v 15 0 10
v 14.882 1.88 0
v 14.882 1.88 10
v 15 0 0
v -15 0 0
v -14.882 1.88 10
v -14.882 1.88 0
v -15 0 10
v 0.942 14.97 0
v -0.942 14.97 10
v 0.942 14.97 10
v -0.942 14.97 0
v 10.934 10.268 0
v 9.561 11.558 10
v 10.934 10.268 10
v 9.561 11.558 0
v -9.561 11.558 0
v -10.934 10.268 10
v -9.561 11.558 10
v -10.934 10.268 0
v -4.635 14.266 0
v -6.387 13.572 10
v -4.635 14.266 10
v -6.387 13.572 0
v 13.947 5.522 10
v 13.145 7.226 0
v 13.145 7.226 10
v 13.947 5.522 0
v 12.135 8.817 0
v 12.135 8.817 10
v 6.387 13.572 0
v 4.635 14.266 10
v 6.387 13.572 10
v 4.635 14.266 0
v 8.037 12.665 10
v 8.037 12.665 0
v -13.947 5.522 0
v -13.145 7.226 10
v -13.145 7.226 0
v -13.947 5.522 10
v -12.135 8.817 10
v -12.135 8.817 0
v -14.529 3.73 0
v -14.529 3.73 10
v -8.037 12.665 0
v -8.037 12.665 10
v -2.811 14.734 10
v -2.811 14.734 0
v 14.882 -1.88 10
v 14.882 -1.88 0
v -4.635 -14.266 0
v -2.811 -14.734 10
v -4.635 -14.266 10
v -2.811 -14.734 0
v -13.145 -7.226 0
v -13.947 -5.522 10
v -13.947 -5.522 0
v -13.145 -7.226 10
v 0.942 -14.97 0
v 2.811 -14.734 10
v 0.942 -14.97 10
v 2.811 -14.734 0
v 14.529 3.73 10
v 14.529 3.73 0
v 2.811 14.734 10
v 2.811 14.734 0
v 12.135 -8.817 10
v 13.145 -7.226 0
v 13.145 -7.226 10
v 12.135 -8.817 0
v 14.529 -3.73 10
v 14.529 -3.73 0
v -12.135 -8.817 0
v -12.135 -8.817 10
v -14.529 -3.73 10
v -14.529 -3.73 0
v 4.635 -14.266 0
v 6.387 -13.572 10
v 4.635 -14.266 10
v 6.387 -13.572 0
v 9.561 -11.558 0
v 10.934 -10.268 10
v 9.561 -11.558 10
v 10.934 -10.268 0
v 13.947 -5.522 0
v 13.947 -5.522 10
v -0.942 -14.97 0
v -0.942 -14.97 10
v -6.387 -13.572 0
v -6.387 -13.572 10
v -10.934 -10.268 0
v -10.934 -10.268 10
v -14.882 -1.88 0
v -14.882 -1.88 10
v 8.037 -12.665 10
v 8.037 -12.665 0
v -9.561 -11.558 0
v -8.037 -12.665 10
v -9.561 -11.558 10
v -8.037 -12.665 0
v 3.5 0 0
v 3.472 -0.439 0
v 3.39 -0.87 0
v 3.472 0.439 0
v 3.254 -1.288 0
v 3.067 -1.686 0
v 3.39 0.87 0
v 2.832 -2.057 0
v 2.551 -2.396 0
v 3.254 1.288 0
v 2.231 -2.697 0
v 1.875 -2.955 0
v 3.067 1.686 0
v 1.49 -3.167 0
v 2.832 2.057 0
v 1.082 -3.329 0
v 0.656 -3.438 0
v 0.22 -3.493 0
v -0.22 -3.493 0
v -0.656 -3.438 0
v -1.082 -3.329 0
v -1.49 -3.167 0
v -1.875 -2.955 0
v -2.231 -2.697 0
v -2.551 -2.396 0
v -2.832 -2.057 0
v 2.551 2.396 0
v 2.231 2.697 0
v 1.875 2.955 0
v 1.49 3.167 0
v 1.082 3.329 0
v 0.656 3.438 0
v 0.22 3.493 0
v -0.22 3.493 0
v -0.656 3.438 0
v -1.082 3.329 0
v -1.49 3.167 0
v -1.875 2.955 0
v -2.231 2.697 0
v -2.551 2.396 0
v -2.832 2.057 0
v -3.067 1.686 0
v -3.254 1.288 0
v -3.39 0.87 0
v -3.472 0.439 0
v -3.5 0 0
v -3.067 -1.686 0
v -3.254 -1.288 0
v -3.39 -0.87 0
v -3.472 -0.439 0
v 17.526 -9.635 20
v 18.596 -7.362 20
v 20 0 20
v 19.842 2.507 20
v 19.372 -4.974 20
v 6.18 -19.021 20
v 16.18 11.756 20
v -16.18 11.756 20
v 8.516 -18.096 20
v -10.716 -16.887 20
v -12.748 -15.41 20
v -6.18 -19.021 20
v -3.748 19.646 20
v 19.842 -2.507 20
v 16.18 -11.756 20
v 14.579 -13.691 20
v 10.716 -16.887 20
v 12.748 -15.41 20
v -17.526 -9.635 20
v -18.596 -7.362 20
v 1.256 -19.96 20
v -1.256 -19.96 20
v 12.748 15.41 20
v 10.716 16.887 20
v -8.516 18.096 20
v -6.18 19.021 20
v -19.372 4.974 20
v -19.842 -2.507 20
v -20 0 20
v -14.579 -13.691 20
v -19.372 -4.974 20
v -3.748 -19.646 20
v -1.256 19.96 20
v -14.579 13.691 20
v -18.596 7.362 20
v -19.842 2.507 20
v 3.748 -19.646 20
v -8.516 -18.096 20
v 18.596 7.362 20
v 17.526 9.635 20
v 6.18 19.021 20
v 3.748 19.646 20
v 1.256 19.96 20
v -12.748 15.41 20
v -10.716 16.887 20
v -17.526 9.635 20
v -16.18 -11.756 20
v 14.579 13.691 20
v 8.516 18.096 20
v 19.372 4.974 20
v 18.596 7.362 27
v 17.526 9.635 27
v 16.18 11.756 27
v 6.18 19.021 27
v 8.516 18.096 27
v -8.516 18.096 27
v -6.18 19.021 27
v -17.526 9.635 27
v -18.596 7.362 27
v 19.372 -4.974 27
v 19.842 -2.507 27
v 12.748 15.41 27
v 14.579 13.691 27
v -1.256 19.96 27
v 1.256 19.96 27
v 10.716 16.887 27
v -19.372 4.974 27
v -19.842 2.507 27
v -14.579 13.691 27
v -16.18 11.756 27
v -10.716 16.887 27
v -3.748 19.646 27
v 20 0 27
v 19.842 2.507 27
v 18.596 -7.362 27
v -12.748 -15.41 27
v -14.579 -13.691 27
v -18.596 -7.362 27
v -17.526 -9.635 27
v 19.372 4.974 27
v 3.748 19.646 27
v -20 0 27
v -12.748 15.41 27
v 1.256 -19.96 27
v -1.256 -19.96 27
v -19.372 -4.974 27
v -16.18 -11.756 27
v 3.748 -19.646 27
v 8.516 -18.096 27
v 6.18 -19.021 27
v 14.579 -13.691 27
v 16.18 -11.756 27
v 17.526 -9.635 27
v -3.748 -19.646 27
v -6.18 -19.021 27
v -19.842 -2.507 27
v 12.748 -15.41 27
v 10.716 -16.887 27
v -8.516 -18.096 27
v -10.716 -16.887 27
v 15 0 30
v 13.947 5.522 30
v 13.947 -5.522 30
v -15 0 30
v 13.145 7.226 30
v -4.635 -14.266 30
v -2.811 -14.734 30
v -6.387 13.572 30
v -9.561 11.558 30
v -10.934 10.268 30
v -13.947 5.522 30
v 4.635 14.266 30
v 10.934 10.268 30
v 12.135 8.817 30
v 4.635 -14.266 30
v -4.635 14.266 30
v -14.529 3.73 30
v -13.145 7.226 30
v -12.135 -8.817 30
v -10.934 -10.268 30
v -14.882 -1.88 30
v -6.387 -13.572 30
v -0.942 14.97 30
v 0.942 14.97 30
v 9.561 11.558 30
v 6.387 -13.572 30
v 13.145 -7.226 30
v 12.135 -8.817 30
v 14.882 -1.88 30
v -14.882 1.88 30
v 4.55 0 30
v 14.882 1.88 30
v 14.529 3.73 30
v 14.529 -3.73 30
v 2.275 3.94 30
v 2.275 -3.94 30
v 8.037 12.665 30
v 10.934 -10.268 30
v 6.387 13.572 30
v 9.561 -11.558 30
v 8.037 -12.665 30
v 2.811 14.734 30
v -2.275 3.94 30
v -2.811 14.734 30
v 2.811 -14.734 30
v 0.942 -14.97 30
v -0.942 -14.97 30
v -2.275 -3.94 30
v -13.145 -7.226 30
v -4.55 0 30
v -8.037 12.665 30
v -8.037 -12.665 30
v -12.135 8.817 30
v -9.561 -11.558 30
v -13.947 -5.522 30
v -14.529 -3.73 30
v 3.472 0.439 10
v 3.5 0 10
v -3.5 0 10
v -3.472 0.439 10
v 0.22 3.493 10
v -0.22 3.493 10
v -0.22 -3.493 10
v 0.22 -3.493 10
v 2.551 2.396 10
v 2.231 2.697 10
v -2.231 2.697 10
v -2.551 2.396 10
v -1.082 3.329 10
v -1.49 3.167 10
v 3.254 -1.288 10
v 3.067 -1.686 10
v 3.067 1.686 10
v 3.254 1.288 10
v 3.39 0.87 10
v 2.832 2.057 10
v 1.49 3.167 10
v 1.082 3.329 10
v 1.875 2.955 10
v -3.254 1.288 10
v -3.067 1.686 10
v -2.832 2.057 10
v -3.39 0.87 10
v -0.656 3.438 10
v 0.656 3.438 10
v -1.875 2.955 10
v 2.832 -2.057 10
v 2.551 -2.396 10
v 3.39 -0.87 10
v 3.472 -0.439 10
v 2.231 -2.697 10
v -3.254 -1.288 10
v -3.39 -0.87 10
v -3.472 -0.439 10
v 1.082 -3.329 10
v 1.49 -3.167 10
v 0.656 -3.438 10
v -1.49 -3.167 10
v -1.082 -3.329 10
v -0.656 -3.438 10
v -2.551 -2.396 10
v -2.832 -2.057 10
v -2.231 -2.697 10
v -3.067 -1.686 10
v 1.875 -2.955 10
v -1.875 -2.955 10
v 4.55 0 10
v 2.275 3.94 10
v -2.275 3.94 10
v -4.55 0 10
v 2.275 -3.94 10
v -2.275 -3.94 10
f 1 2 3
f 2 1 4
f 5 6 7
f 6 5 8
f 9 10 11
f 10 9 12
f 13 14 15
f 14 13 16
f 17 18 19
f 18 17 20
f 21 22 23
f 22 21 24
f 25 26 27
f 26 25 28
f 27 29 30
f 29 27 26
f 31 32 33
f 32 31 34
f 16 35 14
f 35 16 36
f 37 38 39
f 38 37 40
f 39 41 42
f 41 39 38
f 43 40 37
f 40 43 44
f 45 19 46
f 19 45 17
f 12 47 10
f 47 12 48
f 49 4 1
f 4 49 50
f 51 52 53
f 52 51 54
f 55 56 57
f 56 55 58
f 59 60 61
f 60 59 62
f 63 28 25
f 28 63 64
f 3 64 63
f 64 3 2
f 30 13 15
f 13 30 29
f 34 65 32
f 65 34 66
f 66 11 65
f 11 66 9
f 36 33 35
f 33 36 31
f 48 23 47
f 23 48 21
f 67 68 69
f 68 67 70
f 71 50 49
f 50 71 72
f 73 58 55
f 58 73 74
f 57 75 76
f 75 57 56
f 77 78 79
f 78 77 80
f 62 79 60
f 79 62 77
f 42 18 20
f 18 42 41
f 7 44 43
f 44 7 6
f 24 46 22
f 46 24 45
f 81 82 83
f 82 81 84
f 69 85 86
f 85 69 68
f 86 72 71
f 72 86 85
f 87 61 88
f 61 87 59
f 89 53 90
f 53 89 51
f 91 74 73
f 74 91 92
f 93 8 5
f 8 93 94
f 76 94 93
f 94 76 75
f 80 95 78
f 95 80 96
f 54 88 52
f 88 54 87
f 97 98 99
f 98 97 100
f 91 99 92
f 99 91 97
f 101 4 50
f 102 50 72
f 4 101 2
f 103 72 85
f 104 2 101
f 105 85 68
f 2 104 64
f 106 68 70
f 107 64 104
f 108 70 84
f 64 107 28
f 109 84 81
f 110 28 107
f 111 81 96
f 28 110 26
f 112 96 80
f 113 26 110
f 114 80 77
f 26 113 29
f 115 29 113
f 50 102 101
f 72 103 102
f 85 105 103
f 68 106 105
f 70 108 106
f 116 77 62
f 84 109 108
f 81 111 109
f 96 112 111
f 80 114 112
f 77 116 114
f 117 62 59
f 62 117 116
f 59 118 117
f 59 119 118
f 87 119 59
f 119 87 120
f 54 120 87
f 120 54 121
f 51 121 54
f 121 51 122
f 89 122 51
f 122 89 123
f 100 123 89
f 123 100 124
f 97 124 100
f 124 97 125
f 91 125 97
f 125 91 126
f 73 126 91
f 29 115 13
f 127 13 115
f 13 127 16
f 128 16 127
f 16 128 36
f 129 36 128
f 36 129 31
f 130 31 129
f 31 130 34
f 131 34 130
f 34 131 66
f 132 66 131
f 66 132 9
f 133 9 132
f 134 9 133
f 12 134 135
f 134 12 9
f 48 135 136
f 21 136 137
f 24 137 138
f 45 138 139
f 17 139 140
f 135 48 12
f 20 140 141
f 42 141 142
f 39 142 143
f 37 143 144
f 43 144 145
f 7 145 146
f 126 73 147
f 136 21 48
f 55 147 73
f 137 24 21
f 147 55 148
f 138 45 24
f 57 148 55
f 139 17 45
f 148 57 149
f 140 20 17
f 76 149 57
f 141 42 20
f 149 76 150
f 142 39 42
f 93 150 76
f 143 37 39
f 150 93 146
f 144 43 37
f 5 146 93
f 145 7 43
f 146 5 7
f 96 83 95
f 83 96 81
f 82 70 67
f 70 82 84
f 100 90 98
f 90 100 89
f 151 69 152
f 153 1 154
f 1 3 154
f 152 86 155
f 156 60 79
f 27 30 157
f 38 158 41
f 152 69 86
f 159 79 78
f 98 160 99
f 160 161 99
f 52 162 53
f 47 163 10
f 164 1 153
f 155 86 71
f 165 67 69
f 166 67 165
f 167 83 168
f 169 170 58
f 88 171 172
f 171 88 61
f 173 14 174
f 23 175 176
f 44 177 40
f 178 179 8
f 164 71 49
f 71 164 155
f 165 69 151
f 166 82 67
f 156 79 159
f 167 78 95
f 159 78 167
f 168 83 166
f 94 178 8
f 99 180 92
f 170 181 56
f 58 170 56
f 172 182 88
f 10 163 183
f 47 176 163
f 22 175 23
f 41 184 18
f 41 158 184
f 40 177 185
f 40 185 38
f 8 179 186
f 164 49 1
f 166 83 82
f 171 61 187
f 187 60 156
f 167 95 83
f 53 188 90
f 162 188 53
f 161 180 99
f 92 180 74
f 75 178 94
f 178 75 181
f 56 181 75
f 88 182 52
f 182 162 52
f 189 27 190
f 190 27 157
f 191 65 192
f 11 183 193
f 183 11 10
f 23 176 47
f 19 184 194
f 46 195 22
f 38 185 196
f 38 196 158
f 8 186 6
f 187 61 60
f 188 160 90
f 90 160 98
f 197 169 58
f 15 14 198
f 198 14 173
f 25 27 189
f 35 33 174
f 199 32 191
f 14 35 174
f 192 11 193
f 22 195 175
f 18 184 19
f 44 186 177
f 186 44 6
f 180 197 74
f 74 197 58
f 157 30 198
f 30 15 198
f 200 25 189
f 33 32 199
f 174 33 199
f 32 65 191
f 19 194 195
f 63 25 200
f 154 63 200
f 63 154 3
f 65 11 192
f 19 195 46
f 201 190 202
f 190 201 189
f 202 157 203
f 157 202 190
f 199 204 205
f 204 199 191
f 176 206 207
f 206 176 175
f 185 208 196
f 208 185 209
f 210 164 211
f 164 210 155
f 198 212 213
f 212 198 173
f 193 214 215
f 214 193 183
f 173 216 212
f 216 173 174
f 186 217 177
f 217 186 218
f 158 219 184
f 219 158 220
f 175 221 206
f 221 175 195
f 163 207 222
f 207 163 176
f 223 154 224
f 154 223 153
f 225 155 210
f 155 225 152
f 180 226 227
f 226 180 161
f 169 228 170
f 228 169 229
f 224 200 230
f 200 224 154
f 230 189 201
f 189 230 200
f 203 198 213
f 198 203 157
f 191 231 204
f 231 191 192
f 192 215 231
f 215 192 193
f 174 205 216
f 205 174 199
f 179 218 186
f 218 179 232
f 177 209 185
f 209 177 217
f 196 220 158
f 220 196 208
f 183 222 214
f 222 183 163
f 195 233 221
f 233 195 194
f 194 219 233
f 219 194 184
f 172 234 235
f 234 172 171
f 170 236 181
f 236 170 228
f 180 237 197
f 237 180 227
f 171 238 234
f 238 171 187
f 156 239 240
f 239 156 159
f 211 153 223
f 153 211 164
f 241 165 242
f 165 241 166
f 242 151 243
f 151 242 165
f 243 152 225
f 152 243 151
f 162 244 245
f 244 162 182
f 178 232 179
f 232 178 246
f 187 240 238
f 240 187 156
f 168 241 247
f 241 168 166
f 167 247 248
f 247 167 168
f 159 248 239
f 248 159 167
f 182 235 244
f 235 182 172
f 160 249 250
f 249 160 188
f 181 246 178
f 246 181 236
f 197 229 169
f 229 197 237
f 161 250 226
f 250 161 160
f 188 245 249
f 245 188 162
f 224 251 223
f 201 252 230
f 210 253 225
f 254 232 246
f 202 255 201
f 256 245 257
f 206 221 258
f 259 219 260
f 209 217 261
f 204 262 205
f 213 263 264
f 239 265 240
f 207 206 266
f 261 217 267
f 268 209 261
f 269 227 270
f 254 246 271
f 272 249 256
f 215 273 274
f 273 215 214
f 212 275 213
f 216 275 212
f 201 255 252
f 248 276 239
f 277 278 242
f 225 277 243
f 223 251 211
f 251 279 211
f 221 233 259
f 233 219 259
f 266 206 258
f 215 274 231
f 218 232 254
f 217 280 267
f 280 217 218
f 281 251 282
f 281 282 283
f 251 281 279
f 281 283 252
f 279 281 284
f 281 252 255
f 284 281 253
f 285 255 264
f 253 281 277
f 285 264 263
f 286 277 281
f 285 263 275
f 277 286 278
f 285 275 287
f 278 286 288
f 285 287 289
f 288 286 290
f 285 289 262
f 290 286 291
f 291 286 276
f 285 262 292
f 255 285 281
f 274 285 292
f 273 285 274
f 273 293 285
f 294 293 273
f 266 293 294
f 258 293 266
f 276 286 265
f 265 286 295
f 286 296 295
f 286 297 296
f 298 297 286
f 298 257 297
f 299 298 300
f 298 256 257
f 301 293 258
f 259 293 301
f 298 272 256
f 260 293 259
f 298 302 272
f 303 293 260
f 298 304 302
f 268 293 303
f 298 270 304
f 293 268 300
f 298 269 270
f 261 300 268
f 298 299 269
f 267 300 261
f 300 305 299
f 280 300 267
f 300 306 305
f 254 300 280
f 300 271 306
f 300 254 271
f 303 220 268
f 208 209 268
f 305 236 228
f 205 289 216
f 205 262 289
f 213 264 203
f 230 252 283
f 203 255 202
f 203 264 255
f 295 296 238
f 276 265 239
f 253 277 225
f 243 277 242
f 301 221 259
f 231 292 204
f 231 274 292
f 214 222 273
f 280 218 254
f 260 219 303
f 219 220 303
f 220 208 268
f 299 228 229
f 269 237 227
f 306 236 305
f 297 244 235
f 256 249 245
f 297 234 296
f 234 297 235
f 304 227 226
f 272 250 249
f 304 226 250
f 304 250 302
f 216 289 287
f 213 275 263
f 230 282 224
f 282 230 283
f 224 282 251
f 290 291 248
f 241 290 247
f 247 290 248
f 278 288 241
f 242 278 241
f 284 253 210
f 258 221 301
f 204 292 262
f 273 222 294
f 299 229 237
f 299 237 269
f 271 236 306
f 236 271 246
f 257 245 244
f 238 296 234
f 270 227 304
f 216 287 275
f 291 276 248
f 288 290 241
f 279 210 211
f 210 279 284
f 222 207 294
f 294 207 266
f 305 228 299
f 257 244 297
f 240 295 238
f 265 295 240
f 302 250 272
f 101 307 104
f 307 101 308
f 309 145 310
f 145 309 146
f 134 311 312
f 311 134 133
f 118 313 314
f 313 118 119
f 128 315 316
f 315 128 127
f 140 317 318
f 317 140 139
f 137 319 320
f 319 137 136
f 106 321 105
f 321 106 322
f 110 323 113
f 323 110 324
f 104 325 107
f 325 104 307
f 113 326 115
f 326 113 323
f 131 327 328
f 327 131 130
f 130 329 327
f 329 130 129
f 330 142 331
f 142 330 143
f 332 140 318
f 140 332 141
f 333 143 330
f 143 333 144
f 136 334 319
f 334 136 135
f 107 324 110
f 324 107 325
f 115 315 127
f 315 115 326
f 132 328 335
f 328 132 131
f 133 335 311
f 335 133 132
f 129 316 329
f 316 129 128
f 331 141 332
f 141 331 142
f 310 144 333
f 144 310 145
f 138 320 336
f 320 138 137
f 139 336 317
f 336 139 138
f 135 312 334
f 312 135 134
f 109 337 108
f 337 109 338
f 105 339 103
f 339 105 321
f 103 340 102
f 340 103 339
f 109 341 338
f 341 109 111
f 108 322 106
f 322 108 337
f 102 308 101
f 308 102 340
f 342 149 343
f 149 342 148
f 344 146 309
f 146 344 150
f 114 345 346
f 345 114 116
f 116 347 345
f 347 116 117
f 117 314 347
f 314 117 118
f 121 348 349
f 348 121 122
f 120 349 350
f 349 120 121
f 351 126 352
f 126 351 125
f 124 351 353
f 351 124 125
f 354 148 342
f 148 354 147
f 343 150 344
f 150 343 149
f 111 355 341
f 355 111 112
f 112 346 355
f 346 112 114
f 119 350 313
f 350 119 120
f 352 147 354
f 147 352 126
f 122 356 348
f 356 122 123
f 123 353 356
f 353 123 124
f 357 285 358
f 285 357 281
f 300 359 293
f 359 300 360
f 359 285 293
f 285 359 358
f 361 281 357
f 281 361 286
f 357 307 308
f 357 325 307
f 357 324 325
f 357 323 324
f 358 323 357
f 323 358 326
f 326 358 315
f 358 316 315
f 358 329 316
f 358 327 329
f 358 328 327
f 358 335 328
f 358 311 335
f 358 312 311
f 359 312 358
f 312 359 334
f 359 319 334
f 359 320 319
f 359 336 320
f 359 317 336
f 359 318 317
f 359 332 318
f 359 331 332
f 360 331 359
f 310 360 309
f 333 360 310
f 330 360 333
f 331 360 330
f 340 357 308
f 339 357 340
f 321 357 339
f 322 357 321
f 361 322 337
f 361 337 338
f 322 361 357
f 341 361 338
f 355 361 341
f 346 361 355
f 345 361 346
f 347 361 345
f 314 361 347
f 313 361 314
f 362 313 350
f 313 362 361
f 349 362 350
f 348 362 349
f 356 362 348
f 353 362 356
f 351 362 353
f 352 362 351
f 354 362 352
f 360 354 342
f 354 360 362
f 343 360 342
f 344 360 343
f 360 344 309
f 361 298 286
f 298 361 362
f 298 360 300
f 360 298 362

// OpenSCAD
$fn=50;
difference() {
    union() {
        cylinder(10,30/2,30/2);
        translate([0,0,10]) cylinder(10,30/2,40/2);
        translate([0,0,20]) cylinder(7,40/2,40/2);
        translate([0,0,27]) cylinder(3,40/2,30/2);
    }
    cylinder(40,7/2,7/2);
    translate([0,0,10]) cylinder(30,9.1/2,9.1/2,$fn=6);
}
